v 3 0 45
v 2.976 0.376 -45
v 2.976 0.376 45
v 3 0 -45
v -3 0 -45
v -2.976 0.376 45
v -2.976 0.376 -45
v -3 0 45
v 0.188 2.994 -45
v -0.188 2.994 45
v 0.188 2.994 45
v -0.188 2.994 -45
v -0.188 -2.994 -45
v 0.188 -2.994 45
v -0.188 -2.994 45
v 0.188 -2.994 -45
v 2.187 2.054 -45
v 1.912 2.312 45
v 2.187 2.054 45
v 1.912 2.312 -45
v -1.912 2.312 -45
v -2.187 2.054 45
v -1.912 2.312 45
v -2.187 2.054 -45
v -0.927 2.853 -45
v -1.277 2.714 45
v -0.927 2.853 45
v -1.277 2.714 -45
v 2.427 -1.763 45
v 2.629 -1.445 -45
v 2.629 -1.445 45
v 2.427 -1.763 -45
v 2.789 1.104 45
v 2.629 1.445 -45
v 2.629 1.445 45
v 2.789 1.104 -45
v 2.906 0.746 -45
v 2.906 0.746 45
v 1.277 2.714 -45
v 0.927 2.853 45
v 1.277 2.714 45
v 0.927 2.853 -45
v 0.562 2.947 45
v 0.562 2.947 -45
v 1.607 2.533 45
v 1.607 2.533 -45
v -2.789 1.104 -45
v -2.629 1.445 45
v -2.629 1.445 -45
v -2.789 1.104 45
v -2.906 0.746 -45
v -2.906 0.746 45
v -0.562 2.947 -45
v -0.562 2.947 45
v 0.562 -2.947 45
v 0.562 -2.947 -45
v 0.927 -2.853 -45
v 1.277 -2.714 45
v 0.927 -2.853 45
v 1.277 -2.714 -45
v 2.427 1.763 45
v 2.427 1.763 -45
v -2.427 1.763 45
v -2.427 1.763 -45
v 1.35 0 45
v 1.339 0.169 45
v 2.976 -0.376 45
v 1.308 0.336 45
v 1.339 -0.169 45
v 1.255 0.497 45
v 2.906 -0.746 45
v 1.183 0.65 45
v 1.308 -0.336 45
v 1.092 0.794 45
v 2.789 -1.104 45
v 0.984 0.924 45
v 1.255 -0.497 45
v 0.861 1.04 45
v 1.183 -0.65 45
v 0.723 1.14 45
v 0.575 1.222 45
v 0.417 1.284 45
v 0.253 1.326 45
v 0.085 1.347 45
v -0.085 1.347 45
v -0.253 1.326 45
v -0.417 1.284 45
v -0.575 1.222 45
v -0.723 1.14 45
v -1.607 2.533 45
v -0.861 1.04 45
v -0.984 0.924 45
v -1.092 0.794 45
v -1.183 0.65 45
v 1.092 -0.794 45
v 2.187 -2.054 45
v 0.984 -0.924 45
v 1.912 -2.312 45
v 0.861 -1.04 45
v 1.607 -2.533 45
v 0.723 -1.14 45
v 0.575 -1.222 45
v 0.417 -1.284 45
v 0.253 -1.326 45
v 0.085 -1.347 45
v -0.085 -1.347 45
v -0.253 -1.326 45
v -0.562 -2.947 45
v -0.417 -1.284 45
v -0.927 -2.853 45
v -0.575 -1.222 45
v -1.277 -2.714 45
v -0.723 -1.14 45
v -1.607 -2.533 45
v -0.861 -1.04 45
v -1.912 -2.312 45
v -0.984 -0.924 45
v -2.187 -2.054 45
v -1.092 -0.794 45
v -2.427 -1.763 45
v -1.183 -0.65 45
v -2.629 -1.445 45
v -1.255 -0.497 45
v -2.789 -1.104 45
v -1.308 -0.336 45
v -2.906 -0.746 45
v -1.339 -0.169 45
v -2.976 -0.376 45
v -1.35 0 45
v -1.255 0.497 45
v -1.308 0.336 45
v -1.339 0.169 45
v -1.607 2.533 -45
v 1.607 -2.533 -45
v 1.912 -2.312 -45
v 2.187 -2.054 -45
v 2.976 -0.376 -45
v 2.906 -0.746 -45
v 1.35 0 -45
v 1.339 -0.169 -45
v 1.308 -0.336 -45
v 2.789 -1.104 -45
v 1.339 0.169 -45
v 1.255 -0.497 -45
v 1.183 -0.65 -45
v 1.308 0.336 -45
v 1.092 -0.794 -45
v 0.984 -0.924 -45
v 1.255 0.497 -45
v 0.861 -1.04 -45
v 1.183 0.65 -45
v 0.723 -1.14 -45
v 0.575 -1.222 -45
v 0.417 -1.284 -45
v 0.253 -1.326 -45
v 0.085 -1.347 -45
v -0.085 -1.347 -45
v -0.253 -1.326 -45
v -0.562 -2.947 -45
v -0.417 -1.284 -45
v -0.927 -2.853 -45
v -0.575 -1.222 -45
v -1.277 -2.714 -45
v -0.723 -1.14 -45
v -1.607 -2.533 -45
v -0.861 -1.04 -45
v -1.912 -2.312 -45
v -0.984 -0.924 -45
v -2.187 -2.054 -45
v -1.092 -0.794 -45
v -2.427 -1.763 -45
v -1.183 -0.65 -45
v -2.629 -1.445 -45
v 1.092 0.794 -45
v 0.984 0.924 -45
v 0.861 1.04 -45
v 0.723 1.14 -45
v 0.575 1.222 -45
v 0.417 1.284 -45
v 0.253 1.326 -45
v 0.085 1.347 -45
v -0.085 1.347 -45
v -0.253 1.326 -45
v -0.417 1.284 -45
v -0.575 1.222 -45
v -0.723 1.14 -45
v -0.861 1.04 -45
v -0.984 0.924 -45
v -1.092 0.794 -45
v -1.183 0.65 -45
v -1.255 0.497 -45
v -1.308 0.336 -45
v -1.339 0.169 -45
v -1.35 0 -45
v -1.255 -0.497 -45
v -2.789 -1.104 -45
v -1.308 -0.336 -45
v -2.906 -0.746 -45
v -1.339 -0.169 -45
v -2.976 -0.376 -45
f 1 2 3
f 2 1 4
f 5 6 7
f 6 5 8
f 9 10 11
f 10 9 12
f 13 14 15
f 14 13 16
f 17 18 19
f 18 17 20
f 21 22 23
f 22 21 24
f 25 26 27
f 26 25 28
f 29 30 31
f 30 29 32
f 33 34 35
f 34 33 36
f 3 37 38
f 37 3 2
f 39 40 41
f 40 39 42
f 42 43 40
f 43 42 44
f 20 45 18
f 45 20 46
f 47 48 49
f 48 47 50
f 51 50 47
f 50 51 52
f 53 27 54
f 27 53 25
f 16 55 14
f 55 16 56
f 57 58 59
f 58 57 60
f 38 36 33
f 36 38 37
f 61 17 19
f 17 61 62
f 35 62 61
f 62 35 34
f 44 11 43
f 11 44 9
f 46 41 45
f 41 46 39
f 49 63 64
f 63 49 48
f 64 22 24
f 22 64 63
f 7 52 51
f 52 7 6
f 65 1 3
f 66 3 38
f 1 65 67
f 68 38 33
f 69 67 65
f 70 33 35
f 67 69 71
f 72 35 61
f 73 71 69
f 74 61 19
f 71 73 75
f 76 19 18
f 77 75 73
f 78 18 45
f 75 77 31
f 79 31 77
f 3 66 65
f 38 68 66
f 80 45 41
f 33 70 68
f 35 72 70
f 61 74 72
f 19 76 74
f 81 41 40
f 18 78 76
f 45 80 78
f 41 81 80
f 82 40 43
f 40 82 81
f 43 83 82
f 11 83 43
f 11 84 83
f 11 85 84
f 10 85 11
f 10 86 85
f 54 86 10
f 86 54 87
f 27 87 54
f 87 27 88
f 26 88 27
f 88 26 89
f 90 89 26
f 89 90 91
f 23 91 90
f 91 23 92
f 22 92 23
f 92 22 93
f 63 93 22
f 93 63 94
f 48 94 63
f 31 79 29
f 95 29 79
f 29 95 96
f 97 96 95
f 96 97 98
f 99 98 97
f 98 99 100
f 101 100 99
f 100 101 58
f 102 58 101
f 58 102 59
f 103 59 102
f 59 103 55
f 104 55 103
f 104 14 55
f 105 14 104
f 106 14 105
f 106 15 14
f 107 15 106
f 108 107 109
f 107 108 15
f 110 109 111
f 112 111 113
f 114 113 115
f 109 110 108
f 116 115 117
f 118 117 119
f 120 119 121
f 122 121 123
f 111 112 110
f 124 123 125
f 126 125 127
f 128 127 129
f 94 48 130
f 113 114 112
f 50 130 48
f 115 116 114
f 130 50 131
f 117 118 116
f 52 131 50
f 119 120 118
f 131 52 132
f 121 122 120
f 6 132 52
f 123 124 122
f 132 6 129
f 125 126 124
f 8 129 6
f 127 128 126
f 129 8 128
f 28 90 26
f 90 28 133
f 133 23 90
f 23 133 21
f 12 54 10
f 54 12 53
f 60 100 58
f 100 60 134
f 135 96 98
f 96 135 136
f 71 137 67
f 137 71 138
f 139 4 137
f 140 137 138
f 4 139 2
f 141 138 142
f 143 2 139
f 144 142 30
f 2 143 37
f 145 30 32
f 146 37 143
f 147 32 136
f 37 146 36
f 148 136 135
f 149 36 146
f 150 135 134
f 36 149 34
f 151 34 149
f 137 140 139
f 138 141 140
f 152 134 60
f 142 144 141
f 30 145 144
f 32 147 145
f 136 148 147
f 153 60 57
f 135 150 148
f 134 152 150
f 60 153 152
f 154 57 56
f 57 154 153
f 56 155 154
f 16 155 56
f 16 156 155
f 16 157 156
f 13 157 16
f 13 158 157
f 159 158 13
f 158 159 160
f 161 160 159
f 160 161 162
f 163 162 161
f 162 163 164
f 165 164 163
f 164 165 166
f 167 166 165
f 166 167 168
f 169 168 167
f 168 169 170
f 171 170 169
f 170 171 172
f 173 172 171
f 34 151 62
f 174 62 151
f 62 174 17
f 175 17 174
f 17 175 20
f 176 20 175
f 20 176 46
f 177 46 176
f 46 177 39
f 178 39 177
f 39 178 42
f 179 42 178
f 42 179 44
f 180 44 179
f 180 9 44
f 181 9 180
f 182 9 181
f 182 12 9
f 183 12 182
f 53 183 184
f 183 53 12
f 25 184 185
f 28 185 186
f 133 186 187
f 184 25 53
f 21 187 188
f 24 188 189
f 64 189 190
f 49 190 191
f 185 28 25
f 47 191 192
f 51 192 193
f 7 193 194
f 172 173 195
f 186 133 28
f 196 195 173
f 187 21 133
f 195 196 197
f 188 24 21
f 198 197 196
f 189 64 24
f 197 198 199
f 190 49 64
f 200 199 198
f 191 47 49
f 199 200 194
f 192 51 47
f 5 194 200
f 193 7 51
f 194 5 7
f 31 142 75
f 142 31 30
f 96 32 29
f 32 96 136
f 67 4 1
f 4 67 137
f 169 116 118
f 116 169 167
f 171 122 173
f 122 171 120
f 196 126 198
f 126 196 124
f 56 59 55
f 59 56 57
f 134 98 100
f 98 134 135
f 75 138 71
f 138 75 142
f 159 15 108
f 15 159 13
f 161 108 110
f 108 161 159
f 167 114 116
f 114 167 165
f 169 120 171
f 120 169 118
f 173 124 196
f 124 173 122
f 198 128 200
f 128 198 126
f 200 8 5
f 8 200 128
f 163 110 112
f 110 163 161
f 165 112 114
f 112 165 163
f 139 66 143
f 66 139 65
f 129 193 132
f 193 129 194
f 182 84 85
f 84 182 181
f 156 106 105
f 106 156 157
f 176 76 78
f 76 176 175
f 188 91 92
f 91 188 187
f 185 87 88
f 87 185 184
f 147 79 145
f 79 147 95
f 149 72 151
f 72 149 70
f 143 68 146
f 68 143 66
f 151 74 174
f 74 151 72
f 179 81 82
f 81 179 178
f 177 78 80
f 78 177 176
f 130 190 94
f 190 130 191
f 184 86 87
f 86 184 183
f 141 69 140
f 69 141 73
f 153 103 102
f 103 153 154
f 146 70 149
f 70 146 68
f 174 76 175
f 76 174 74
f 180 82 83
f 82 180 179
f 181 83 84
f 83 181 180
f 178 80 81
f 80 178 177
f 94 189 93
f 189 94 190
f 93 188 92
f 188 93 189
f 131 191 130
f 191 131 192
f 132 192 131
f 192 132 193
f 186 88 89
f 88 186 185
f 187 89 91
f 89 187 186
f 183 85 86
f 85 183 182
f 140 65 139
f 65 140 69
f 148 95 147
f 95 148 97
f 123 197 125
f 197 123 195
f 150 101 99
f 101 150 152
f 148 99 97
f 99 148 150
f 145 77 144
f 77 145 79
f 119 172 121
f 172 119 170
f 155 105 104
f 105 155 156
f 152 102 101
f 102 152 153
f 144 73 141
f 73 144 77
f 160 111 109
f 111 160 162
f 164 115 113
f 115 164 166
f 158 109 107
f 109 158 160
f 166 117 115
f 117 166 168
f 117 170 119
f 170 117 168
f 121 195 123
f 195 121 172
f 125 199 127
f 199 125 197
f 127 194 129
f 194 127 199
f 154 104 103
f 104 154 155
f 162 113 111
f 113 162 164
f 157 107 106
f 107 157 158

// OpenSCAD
$fn = 50;


difference() {
	union() {
		translate(v = [0, 0, -45.0000000000]) {
			cylinder(h = 90, r = 3.0000000000);
		}
	}
	union() {
		translate(v = [0, 0, -100.0000000000]) {
			cylinder(h = 200, r = 1.3500000000);
		}
	}
}
